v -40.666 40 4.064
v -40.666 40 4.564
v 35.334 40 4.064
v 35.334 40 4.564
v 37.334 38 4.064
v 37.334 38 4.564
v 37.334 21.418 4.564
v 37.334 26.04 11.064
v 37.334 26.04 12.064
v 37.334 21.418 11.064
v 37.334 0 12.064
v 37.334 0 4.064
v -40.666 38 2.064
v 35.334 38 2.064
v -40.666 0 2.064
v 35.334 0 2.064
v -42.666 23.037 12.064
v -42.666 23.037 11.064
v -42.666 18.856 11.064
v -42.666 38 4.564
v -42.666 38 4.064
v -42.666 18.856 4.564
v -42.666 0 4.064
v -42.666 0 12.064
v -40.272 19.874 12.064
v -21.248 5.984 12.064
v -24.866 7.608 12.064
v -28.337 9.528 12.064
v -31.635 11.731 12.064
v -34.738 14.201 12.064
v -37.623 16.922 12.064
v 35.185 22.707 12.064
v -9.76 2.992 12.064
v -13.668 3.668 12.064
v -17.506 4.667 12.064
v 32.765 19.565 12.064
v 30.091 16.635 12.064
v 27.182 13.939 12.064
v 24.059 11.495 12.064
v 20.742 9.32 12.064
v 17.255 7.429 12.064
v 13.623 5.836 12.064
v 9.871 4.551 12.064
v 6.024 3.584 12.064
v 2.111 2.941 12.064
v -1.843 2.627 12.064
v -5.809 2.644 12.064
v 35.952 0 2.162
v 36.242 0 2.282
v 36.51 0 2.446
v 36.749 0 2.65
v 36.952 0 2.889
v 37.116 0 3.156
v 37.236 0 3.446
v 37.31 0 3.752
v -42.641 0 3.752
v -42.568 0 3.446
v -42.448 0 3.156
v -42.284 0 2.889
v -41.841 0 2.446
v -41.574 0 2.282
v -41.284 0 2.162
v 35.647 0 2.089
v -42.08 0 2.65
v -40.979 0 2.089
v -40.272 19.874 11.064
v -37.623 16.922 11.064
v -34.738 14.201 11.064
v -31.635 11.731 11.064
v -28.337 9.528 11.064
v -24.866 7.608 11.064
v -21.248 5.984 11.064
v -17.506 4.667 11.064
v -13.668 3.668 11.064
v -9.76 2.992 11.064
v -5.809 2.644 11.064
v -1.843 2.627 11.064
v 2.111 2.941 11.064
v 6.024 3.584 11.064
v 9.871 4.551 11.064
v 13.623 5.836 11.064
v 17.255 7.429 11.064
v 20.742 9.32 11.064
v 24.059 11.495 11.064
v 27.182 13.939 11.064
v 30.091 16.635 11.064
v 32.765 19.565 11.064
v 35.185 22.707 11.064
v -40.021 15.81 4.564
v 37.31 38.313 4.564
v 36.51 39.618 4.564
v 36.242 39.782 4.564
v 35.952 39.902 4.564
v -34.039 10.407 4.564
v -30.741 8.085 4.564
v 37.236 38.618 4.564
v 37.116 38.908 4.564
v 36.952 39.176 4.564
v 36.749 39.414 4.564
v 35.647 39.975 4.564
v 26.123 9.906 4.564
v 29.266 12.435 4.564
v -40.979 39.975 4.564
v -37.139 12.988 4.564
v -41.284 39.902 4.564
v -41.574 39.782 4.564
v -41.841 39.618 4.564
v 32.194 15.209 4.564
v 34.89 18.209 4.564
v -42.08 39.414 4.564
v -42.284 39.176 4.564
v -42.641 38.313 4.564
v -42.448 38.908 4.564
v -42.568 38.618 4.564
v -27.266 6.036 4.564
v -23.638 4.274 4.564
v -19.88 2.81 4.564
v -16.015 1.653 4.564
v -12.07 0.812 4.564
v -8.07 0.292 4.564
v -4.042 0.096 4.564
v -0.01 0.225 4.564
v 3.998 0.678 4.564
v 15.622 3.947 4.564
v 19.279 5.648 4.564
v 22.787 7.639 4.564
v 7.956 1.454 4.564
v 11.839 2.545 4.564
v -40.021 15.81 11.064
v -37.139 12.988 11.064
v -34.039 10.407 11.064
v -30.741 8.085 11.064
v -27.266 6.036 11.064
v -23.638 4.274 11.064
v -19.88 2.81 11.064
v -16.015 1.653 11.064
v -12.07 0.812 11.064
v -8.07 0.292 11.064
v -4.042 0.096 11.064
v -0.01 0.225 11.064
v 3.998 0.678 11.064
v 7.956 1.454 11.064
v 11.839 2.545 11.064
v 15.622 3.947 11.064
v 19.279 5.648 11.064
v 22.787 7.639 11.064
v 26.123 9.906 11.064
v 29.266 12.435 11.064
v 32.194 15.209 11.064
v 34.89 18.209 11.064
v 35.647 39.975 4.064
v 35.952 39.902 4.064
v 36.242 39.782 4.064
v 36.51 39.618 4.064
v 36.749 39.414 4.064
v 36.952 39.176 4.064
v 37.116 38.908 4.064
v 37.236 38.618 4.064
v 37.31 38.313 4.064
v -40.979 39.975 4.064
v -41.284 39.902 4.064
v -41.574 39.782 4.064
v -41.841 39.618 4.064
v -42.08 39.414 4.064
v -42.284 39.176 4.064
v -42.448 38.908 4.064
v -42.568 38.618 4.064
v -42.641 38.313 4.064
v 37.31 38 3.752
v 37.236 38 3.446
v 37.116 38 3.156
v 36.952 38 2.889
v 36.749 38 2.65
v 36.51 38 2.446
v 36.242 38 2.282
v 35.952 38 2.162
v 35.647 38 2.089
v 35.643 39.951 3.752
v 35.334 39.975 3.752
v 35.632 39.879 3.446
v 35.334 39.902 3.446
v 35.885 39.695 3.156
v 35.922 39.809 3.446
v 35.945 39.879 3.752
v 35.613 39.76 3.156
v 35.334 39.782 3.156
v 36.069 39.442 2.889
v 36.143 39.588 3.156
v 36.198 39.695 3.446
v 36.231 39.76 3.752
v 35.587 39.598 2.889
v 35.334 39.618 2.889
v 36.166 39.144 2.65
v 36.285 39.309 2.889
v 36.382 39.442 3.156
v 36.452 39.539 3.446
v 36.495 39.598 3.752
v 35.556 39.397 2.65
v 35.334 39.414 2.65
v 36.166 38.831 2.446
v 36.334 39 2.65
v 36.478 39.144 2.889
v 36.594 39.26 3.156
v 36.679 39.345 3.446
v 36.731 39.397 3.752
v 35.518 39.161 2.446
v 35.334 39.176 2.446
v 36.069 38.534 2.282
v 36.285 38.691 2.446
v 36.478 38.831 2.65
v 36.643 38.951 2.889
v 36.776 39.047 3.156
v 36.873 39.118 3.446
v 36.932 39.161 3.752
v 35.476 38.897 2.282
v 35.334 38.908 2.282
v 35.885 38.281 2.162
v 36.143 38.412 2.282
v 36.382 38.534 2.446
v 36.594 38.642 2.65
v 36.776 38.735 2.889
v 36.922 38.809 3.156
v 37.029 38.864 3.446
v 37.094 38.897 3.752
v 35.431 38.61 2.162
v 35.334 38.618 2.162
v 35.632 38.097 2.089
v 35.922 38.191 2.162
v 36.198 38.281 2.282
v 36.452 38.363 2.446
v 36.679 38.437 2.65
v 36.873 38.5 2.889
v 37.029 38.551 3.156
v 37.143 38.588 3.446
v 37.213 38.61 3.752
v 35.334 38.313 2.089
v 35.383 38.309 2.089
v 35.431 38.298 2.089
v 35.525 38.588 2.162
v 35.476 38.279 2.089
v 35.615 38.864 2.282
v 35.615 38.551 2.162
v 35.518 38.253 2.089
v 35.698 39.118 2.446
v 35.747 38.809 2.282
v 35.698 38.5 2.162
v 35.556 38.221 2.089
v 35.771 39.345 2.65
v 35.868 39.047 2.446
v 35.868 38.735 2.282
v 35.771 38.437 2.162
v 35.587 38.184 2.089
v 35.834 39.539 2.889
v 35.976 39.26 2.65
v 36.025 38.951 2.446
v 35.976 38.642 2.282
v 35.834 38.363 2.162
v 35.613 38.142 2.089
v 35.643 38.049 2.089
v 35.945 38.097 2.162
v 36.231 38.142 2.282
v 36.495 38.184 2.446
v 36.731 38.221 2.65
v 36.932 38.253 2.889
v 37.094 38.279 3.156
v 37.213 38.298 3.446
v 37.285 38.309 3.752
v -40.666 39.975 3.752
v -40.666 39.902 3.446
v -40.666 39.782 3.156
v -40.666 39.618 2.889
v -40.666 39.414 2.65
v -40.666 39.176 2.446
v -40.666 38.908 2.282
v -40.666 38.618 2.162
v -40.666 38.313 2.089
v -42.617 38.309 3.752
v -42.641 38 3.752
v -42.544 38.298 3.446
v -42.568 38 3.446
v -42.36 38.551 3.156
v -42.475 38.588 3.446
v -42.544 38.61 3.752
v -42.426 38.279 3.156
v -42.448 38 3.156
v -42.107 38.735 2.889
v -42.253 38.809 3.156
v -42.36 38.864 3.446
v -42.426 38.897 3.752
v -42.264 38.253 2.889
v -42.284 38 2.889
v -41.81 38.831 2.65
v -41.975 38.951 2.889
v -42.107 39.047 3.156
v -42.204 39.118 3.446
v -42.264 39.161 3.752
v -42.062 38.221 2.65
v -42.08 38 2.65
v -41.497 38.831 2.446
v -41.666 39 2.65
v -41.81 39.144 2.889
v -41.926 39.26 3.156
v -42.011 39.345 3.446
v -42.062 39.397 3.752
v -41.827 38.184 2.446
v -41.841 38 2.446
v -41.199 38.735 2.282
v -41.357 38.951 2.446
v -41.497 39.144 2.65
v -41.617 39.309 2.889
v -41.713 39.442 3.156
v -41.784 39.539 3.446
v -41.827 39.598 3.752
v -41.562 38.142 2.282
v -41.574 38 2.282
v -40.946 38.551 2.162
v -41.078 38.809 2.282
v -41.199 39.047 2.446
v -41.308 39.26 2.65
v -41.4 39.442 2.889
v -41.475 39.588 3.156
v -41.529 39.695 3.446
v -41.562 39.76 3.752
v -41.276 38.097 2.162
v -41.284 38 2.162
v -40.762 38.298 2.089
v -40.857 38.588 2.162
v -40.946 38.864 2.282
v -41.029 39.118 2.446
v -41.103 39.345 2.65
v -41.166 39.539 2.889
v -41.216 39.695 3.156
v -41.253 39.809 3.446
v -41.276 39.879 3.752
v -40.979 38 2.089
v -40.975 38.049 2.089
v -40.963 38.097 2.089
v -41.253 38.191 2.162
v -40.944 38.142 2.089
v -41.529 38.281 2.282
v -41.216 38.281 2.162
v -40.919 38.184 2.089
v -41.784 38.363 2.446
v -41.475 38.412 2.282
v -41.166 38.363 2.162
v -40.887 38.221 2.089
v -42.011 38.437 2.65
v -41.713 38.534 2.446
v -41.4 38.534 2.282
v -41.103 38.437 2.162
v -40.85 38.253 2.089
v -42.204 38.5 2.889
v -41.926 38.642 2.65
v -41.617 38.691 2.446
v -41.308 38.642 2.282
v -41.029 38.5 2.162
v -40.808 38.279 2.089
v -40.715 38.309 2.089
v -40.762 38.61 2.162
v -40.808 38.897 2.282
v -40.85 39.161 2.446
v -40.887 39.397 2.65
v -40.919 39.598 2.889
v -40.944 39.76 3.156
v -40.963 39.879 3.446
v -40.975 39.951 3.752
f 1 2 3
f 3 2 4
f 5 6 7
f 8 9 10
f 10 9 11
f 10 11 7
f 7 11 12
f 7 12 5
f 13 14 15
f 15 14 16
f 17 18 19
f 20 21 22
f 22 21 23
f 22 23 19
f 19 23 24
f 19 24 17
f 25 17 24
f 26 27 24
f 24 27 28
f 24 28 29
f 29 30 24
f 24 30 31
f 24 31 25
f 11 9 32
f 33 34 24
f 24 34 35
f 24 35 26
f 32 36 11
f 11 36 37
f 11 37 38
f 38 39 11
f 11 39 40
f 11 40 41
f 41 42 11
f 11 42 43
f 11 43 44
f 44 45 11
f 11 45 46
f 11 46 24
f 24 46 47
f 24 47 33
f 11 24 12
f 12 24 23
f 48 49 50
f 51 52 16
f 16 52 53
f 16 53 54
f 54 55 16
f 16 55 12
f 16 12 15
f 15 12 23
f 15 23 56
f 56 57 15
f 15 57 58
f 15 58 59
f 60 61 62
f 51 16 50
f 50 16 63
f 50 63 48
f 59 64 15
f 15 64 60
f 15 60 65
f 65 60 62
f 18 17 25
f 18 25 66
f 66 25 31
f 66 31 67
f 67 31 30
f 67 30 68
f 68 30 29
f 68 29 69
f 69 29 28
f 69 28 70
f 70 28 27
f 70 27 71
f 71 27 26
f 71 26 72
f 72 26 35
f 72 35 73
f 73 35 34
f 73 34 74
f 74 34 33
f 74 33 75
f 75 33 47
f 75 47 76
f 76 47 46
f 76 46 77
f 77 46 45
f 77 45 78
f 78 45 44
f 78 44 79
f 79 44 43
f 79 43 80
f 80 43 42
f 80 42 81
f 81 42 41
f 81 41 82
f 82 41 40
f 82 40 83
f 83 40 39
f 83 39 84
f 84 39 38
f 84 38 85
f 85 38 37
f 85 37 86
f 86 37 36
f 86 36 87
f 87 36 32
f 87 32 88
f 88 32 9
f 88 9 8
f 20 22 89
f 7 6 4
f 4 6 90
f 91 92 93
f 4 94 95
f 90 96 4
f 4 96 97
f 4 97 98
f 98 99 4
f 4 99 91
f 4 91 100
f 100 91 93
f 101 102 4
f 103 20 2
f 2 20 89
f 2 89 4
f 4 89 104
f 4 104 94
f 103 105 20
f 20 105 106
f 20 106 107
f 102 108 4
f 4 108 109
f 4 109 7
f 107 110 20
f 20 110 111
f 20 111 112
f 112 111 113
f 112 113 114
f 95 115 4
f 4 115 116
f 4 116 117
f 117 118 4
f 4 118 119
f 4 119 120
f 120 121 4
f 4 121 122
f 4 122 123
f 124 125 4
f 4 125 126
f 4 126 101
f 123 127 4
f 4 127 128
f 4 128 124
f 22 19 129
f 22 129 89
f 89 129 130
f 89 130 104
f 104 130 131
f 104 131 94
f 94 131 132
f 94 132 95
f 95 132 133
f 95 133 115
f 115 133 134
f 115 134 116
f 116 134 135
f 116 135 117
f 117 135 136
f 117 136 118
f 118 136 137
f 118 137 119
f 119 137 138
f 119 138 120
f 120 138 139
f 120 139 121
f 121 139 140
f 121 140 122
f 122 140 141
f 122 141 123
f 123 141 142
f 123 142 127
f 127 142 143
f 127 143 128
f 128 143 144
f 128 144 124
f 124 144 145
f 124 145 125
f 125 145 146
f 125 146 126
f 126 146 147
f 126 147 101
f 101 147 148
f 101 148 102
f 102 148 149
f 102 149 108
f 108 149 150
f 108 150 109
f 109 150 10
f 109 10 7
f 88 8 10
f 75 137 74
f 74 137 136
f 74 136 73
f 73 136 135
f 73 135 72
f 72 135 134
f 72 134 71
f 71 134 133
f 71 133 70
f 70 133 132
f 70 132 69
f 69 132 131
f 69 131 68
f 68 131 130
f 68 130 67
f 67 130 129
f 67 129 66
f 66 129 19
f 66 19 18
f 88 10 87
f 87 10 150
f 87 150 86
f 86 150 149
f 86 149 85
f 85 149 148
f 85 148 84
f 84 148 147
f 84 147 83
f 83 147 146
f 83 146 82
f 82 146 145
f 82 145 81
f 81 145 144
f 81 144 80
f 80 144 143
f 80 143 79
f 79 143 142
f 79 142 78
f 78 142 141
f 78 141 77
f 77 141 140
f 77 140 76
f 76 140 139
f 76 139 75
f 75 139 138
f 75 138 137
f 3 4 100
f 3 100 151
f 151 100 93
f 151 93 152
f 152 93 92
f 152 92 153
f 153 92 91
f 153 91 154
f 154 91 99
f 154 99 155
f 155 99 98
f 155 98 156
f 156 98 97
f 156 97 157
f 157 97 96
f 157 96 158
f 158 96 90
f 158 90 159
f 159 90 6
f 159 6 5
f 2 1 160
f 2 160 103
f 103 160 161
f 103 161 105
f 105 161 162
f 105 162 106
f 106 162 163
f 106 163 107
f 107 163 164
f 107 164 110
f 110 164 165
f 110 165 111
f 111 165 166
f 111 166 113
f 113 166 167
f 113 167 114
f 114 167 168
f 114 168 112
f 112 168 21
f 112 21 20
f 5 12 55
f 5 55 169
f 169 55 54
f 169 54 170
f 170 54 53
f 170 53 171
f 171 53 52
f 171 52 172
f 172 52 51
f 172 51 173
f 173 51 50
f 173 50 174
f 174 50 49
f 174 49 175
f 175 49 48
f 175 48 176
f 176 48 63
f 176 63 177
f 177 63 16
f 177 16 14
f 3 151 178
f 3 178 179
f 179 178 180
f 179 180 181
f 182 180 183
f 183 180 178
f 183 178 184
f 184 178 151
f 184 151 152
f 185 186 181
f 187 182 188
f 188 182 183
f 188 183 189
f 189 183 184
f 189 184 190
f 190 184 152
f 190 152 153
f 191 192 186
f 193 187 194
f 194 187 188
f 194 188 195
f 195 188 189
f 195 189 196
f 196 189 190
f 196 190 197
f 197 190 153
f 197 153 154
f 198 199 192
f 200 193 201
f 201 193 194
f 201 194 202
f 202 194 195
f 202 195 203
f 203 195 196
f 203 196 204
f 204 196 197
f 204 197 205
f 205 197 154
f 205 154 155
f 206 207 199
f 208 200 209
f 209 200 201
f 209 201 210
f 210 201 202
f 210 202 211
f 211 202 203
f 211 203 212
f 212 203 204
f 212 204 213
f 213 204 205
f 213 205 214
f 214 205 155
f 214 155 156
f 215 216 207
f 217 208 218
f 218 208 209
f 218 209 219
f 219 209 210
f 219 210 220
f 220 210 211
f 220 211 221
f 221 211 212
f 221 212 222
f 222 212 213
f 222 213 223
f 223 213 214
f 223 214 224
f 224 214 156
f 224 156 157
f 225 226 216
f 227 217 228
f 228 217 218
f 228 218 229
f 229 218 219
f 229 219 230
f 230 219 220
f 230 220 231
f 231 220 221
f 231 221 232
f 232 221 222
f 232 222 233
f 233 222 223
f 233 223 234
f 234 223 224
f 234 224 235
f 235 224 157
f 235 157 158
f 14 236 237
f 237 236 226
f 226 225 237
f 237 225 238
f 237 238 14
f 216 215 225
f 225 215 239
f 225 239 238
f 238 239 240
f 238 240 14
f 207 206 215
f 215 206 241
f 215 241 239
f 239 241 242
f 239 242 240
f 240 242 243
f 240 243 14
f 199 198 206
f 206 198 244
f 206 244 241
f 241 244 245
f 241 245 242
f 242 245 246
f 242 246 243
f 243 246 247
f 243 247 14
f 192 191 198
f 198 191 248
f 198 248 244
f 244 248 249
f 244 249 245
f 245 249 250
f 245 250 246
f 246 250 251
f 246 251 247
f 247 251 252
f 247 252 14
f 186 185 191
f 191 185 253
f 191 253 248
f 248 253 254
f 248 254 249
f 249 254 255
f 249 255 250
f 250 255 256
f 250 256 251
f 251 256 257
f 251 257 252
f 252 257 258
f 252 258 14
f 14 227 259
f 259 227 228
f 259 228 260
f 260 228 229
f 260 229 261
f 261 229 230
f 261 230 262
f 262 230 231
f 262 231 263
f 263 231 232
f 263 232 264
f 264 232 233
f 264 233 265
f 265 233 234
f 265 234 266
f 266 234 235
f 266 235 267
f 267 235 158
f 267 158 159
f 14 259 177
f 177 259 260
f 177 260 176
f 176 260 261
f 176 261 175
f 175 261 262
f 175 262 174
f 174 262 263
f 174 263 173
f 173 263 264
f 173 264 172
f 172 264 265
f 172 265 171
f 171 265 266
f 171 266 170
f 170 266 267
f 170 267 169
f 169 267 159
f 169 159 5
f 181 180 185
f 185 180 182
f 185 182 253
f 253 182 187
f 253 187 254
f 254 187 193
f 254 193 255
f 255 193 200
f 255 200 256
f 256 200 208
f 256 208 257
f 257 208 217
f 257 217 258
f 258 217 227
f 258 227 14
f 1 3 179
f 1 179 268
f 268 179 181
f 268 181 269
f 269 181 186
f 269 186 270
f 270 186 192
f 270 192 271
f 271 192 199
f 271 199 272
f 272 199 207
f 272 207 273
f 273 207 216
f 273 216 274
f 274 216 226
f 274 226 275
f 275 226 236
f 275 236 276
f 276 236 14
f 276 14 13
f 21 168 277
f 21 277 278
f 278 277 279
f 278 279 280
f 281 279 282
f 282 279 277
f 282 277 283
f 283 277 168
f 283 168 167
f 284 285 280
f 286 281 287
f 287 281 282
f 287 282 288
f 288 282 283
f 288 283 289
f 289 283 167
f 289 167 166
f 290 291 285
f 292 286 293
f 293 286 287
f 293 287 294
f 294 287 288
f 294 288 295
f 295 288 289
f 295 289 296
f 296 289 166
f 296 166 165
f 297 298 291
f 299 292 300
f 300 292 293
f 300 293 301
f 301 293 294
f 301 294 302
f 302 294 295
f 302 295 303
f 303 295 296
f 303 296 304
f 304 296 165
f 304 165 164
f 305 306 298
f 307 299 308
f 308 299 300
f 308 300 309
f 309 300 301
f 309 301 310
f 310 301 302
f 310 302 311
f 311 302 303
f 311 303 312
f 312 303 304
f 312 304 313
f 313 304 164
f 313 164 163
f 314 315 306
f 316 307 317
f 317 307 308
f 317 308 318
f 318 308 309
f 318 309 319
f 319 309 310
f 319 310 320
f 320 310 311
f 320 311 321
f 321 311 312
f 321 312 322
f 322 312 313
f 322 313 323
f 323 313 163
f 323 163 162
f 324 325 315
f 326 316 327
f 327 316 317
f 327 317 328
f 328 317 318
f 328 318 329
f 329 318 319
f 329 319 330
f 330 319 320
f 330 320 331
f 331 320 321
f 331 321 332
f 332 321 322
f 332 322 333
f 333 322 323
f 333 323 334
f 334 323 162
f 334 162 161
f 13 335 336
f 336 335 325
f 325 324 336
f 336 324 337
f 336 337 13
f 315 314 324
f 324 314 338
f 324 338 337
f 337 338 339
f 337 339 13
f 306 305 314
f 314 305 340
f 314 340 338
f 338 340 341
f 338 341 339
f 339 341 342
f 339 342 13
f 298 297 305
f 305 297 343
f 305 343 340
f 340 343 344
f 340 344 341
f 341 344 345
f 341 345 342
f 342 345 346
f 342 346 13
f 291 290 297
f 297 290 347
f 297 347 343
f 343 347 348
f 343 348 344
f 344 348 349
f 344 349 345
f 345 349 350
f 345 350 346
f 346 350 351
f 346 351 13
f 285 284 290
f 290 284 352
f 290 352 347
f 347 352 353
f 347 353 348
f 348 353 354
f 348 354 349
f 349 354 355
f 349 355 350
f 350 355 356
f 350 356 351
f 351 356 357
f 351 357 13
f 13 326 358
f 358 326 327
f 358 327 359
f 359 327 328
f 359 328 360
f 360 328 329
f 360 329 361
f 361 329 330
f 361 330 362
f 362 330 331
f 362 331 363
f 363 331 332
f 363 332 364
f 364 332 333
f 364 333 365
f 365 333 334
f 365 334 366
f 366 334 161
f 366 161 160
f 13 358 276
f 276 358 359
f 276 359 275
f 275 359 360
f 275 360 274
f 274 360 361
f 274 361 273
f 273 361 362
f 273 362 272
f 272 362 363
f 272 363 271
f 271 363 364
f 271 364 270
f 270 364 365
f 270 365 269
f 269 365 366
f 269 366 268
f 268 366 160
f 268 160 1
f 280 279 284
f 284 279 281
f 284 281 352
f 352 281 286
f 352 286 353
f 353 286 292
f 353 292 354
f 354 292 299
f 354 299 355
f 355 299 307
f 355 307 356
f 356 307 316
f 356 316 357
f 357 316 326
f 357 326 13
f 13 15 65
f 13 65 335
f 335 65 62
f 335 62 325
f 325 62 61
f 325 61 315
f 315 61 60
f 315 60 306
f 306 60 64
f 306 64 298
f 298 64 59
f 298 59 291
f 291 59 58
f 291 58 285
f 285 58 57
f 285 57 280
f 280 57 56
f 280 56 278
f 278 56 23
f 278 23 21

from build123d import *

# Parameters (mm, degrees)
SKETCH1_W           = 80
SKETCH1_H           = 10
BOSS_EXTRUDE1_DEPTH = 40
SKETCH2_R           = 47.5
CUT_EXTRUDE1_DEPTH  = 7.5
SKETCH3_R           = 50
CUT_EXTRUDE2_DEPTH  = 6.5
FILLET1_R           = 2
FILLET2_R           = 2


with BuildPart() as part:
    # Sketch1 → Boss-Extrude1 (new body)
    with BuildSketch(Plane(origin=(0, 0, 0), x_dir=(1, 0, 0), z_dir=(0, 1, 0))):
        with Locations((-2.66565113, -7.064446738)):
            Rectangle(SKETCH1_W, SKETCH1_H)
    extrude(amount=BOSS_EXTRUDE1_DEPTH)

    # Sketch2 → Cut-Extrude1 (cut)
    with BuildSketch(Plane.XY.offset(12.064446738)):
        with Locations((-3.625057346, 50.093821186)):
            Circle(SKETCH2_R)
    extrude(amount=-CUT_EXTRUDE1_DEPTH, mode=Mode.SUBTRACT)

    # Sketch3 → Cut-Extrude2 (cut)
    with BuildSketch(Plane.XY.offset(11.064446738)):
        with Locations((-3.625057346, 50.093821186)):
            Circle(SKETCH3_R)
    extrude(amount=-CUT_EXTRUDE2_DEPTH, mode=Mode.SUBTRACT)

    # Fillet1
    fillet1_edges = [part.edges().sort_by_distance(p)[0] for p in [
        (-42.66565113, 40, 3.314446738),
        (37.33434887, 40, 3.314446738),
    ]]
    fillet(fillet1_edges, radius=FILLET1_R)

    # Fillet2
    fillet2_edges = [part.edges().sort_by_distance(p)[0] for p in [
        (-2.66565113, 40, 2.064446738),
        (-42.66565113, 19, 2.064446738),
        (37.33434887, 19, 2.064446738),
        (-42.079864693, 39.414213562, 2.064446738),
        (36.748562432, 39.414213562, 2.064446738),
    ]]
    fillet(fillet2_edges, radius=FILLET2_R)


solid = part.part
